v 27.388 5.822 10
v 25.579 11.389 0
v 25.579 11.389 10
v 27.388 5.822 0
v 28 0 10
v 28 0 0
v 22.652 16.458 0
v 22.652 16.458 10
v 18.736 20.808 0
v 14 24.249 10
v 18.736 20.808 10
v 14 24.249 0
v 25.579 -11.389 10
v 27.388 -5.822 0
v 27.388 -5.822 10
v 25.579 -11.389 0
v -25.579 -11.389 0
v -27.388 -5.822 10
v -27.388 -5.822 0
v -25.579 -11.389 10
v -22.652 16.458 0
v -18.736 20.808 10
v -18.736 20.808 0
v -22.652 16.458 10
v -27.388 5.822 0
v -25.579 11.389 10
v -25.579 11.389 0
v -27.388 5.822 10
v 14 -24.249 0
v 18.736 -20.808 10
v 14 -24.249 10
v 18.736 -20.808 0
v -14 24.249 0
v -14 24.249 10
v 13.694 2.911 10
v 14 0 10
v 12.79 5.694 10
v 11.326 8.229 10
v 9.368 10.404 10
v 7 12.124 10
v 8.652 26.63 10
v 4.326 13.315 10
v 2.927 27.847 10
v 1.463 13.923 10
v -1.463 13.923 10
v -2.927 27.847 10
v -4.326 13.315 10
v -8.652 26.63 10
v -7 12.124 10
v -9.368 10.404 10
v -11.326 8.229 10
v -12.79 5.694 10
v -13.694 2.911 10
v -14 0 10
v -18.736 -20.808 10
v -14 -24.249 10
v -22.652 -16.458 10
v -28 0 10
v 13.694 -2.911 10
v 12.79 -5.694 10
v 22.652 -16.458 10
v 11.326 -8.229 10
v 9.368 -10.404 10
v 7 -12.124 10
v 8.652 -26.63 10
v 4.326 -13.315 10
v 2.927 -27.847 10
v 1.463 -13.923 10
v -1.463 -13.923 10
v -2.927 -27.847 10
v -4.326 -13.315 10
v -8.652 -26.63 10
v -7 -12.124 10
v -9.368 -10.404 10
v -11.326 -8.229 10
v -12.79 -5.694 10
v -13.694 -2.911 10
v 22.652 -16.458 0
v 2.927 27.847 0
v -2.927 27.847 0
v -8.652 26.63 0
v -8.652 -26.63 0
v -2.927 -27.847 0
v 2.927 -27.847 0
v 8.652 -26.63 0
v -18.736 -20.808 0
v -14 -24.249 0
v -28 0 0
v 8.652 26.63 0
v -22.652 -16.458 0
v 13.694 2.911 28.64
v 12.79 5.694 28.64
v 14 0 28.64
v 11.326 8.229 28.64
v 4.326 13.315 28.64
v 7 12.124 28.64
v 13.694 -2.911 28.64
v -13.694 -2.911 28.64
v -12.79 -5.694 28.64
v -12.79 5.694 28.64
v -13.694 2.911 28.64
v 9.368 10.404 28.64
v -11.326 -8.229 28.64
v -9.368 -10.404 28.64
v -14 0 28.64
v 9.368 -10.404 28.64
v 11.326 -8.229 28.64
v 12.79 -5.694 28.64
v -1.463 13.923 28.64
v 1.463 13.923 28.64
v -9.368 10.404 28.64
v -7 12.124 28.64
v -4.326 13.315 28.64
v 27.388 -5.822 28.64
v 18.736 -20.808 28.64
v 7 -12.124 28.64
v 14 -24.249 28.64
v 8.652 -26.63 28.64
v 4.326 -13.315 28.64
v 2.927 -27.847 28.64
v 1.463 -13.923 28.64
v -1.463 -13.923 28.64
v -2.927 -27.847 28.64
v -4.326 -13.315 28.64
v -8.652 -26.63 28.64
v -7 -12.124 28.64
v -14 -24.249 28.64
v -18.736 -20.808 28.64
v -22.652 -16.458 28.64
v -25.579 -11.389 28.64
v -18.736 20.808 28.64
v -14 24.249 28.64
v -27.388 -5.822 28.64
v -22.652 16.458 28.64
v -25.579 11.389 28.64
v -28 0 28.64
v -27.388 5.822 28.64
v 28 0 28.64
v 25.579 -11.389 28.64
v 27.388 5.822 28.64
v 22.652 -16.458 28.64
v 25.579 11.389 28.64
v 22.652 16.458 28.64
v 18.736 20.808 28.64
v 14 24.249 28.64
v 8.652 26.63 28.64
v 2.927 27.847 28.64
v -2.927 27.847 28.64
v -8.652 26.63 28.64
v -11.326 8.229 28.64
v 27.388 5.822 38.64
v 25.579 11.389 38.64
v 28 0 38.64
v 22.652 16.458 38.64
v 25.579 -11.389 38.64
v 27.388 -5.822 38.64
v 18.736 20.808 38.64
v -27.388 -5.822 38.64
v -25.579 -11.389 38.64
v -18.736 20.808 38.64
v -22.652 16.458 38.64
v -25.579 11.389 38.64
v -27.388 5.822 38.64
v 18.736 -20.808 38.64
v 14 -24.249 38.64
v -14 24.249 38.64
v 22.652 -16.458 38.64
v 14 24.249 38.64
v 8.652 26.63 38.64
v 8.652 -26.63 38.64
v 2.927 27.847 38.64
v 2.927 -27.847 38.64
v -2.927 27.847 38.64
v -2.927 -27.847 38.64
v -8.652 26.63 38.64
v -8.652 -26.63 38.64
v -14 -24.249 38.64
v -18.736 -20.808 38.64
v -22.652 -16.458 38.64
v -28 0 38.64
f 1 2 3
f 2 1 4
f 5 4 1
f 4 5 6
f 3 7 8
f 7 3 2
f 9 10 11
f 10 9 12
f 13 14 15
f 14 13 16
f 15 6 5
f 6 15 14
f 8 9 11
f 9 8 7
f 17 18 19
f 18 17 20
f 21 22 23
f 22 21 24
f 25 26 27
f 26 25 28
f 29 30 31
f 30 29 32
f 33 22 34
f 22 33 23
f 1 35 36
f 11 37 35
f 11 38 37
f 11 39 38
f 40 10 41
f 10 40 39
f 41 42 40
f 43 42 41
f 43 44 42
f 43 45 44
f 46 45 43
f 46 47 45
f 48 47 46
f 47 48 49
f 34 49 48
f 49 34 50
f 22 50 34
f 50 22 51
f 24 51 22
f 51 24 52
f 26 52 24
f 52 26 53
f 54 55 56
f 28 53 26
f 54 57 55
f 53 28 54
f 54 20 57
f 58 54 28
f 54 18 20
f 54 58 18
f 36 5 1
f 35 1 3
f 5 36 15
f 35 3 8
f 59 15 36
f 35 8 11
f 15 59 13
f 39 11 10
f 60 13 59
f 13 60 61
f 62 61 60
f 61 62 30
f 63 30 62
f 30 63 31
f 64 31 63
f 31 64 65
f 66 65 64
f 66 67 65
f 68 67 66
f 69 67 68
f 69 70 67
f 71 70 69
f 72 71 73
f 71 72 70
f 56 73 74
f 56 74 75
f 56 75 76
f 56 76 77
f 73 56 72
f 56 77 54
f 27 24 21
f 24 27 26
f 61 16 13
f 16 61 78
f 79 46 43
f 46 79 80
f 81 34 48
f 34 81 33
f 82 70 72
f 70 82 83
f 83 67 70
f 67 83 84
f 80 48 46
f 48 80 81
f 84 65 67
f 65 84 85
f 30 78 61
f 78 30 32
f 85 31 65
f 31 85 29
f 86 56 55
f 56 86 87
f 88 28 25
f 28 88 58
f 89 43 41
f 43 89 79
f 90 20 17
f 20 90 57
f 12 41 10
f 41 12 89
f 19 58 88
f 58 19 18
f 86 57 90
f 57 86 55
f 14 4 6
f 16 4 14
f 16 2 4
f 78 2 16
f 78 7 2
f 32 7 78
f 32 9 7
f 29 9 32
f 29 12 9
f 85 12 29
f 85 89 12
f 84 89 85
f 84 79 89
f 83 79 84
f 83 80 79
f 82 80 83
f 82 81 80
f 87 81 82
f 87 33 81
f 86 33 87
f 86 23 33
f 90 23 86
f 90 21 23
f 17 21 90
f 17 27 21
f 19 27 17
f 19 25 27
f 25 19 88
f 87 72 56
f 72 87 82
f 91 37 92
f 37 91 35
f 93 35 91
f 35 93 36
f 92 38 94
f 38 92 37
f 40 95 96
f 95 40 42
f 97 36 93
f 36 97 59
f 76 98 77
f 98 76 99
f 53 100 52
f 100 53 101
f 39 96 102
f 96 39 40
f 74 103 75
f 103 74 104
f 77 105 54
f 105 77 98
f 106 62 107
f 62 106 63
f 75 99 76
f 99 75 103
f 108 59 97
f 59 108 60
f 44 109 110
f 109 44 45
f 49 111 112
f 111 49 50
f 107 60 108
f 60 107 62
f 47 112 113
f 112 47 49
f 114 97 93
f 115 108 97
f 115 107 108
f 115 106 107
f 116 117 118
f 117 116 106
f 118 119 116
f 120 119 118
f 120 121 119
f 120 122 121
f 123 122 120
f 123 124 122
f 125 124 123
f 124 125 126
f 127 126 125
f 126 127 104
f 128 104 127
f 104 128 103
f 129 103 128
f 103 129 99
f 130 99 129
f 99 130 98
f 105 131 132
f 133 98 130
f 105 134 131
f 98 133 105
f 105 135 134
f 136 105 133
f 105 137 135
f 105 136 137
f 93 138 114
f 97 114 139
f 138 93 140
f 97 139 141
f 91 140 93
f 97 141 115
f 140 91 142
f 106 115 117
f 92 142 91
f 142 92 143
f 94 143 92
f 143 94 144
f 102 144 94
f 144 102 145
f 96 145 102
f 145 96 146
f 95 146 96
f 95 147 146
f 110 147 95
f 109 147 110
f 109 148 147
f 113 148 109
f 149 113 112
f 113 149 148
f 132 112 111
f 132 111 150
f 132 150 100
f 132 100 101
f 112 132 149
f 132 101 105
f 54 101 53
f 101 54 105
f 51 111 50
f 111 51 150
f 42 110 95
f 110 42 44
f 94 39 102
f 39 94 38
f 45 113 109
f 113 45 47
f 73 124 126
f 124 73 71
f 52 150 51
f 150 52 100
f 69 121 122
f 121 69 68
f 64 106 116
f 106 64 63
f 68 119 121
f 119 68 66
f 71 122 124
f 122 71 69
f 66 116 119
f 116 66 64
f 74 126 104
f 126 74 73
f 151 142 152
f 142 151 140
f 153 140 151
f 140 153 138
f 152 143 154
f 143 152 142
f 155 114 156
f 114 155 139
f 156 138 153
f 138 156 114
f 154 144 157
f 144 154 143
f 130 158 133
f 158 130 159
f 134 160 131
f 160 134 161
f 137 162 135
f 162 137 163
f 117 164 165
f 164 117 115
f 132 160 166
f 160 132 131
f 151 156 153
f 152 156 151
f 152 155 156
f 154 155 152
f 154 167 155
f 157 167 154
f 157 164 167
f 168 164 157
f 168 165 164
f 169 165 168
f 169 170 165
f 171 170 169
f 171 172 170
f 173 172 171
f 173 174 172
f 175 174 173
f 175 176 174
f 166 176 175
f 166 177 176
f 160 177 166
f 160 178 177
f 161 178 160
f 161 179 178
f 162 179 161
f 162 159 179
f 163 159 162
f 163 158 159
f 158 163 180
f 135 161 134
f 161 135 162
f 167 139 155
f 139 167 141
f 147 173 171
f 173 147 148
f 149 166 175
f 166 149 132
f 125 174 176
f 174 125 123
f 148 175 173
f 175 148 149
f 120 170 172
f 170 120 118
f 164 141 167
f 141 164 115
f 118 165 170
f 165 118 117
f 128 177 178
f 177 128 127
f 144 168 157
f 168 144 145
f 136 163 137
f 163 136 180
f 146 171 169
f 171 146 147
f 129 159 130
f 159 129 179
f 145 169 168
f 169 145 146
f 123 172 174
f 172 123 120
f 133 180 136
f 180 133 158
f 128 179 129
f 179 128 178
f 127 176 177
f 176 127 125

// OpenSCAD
/* doodle-meta {"version":1,"parameters":{"base_diameter":{"label":"Base Flange Diameter","description":"Diameter of the bottom flange","unit":"mm","feature":"base_flange"},"neck_diameter":{"label":"Neck Diameter","description":"Diameter of the central neck section","unit":"mm","feature":"neck"},"top_diameter":{"label":"Top Flange Diameter","description":"Diameter of the top flange","unit":"mm","feature":"top_flange"},"base_height":{"label":"Base Height","description":"Height of the bottom flange","unit":"mm","feature":"base_flange"},"neck_height":{"label":"Neck Height","description":"Height of the central neck","unit":"mm","feature":"neck"},"top_height":{"label":"Top Height","description":"Height of the top flange","unit":"mm","feature":"top_flange"}},"features":{"base_flange":{"kind":"region","label":"Base Flange","min":[0,0,0],"max":[{"parameter":"base_diameter","scale":0.5},{"parameter":"base_diameter","scale":0.5},{"parameter":"base_height"}]},"neck":{"kind":"region","label":"Neck","min":[0,0,{"parameter":"base_height"}],"max":[{"parameter":"neck_diameter","scale":0.5},{"parameter":"neck_diameter","scale":0.5},{"parameter":"base_height","offset":0},{"parameter":"neck_height","offset":0}]},"top_flange":{"kind":"region","label":"Top Flange","min":[0,0,{"parameter":"base_height","offset":0},{"parameter":"neck_height","offset":0}],"max":[{"parameter":"top_diameter","scale":0.5},{"parameter":"top_diameter","scale":0.5},{"parameter":"base_height","offset":0},{"parameter":"neck_height","offset":0},{"parameter":"top_height","offset":0}]}}} */

// Parameters
base_diameter = 56.0;
neck_diameter = 28.0;
top_diameter = 56.0;

base_height = 10.0;
neck_height = 18.64;
top_height = 10.0;

// Derived radii
base_r = base_diameter / 2;
neck_r = neck_diameter / 2;
top_r = top_diameter / 2;

// Total height
total_height = base_height + neck_height + top_height;

// Module for the stepped knob
module stepped_knob() {
    // Base Flange
    translate([0, 0, 0])
        cylinder(h = base_height, r = base_r, center = false);
    
    // Neck
    translate([0, 0, base_height])
        cylinder(h = neck_height, r = neck_r, center = false);
        
    // Top Flange
    translate([0, 0, base_height + neck_height])
        cylinder(h = top_height, r = top_r, center = false);
}

// Instantiate the design
stepped_knob();
